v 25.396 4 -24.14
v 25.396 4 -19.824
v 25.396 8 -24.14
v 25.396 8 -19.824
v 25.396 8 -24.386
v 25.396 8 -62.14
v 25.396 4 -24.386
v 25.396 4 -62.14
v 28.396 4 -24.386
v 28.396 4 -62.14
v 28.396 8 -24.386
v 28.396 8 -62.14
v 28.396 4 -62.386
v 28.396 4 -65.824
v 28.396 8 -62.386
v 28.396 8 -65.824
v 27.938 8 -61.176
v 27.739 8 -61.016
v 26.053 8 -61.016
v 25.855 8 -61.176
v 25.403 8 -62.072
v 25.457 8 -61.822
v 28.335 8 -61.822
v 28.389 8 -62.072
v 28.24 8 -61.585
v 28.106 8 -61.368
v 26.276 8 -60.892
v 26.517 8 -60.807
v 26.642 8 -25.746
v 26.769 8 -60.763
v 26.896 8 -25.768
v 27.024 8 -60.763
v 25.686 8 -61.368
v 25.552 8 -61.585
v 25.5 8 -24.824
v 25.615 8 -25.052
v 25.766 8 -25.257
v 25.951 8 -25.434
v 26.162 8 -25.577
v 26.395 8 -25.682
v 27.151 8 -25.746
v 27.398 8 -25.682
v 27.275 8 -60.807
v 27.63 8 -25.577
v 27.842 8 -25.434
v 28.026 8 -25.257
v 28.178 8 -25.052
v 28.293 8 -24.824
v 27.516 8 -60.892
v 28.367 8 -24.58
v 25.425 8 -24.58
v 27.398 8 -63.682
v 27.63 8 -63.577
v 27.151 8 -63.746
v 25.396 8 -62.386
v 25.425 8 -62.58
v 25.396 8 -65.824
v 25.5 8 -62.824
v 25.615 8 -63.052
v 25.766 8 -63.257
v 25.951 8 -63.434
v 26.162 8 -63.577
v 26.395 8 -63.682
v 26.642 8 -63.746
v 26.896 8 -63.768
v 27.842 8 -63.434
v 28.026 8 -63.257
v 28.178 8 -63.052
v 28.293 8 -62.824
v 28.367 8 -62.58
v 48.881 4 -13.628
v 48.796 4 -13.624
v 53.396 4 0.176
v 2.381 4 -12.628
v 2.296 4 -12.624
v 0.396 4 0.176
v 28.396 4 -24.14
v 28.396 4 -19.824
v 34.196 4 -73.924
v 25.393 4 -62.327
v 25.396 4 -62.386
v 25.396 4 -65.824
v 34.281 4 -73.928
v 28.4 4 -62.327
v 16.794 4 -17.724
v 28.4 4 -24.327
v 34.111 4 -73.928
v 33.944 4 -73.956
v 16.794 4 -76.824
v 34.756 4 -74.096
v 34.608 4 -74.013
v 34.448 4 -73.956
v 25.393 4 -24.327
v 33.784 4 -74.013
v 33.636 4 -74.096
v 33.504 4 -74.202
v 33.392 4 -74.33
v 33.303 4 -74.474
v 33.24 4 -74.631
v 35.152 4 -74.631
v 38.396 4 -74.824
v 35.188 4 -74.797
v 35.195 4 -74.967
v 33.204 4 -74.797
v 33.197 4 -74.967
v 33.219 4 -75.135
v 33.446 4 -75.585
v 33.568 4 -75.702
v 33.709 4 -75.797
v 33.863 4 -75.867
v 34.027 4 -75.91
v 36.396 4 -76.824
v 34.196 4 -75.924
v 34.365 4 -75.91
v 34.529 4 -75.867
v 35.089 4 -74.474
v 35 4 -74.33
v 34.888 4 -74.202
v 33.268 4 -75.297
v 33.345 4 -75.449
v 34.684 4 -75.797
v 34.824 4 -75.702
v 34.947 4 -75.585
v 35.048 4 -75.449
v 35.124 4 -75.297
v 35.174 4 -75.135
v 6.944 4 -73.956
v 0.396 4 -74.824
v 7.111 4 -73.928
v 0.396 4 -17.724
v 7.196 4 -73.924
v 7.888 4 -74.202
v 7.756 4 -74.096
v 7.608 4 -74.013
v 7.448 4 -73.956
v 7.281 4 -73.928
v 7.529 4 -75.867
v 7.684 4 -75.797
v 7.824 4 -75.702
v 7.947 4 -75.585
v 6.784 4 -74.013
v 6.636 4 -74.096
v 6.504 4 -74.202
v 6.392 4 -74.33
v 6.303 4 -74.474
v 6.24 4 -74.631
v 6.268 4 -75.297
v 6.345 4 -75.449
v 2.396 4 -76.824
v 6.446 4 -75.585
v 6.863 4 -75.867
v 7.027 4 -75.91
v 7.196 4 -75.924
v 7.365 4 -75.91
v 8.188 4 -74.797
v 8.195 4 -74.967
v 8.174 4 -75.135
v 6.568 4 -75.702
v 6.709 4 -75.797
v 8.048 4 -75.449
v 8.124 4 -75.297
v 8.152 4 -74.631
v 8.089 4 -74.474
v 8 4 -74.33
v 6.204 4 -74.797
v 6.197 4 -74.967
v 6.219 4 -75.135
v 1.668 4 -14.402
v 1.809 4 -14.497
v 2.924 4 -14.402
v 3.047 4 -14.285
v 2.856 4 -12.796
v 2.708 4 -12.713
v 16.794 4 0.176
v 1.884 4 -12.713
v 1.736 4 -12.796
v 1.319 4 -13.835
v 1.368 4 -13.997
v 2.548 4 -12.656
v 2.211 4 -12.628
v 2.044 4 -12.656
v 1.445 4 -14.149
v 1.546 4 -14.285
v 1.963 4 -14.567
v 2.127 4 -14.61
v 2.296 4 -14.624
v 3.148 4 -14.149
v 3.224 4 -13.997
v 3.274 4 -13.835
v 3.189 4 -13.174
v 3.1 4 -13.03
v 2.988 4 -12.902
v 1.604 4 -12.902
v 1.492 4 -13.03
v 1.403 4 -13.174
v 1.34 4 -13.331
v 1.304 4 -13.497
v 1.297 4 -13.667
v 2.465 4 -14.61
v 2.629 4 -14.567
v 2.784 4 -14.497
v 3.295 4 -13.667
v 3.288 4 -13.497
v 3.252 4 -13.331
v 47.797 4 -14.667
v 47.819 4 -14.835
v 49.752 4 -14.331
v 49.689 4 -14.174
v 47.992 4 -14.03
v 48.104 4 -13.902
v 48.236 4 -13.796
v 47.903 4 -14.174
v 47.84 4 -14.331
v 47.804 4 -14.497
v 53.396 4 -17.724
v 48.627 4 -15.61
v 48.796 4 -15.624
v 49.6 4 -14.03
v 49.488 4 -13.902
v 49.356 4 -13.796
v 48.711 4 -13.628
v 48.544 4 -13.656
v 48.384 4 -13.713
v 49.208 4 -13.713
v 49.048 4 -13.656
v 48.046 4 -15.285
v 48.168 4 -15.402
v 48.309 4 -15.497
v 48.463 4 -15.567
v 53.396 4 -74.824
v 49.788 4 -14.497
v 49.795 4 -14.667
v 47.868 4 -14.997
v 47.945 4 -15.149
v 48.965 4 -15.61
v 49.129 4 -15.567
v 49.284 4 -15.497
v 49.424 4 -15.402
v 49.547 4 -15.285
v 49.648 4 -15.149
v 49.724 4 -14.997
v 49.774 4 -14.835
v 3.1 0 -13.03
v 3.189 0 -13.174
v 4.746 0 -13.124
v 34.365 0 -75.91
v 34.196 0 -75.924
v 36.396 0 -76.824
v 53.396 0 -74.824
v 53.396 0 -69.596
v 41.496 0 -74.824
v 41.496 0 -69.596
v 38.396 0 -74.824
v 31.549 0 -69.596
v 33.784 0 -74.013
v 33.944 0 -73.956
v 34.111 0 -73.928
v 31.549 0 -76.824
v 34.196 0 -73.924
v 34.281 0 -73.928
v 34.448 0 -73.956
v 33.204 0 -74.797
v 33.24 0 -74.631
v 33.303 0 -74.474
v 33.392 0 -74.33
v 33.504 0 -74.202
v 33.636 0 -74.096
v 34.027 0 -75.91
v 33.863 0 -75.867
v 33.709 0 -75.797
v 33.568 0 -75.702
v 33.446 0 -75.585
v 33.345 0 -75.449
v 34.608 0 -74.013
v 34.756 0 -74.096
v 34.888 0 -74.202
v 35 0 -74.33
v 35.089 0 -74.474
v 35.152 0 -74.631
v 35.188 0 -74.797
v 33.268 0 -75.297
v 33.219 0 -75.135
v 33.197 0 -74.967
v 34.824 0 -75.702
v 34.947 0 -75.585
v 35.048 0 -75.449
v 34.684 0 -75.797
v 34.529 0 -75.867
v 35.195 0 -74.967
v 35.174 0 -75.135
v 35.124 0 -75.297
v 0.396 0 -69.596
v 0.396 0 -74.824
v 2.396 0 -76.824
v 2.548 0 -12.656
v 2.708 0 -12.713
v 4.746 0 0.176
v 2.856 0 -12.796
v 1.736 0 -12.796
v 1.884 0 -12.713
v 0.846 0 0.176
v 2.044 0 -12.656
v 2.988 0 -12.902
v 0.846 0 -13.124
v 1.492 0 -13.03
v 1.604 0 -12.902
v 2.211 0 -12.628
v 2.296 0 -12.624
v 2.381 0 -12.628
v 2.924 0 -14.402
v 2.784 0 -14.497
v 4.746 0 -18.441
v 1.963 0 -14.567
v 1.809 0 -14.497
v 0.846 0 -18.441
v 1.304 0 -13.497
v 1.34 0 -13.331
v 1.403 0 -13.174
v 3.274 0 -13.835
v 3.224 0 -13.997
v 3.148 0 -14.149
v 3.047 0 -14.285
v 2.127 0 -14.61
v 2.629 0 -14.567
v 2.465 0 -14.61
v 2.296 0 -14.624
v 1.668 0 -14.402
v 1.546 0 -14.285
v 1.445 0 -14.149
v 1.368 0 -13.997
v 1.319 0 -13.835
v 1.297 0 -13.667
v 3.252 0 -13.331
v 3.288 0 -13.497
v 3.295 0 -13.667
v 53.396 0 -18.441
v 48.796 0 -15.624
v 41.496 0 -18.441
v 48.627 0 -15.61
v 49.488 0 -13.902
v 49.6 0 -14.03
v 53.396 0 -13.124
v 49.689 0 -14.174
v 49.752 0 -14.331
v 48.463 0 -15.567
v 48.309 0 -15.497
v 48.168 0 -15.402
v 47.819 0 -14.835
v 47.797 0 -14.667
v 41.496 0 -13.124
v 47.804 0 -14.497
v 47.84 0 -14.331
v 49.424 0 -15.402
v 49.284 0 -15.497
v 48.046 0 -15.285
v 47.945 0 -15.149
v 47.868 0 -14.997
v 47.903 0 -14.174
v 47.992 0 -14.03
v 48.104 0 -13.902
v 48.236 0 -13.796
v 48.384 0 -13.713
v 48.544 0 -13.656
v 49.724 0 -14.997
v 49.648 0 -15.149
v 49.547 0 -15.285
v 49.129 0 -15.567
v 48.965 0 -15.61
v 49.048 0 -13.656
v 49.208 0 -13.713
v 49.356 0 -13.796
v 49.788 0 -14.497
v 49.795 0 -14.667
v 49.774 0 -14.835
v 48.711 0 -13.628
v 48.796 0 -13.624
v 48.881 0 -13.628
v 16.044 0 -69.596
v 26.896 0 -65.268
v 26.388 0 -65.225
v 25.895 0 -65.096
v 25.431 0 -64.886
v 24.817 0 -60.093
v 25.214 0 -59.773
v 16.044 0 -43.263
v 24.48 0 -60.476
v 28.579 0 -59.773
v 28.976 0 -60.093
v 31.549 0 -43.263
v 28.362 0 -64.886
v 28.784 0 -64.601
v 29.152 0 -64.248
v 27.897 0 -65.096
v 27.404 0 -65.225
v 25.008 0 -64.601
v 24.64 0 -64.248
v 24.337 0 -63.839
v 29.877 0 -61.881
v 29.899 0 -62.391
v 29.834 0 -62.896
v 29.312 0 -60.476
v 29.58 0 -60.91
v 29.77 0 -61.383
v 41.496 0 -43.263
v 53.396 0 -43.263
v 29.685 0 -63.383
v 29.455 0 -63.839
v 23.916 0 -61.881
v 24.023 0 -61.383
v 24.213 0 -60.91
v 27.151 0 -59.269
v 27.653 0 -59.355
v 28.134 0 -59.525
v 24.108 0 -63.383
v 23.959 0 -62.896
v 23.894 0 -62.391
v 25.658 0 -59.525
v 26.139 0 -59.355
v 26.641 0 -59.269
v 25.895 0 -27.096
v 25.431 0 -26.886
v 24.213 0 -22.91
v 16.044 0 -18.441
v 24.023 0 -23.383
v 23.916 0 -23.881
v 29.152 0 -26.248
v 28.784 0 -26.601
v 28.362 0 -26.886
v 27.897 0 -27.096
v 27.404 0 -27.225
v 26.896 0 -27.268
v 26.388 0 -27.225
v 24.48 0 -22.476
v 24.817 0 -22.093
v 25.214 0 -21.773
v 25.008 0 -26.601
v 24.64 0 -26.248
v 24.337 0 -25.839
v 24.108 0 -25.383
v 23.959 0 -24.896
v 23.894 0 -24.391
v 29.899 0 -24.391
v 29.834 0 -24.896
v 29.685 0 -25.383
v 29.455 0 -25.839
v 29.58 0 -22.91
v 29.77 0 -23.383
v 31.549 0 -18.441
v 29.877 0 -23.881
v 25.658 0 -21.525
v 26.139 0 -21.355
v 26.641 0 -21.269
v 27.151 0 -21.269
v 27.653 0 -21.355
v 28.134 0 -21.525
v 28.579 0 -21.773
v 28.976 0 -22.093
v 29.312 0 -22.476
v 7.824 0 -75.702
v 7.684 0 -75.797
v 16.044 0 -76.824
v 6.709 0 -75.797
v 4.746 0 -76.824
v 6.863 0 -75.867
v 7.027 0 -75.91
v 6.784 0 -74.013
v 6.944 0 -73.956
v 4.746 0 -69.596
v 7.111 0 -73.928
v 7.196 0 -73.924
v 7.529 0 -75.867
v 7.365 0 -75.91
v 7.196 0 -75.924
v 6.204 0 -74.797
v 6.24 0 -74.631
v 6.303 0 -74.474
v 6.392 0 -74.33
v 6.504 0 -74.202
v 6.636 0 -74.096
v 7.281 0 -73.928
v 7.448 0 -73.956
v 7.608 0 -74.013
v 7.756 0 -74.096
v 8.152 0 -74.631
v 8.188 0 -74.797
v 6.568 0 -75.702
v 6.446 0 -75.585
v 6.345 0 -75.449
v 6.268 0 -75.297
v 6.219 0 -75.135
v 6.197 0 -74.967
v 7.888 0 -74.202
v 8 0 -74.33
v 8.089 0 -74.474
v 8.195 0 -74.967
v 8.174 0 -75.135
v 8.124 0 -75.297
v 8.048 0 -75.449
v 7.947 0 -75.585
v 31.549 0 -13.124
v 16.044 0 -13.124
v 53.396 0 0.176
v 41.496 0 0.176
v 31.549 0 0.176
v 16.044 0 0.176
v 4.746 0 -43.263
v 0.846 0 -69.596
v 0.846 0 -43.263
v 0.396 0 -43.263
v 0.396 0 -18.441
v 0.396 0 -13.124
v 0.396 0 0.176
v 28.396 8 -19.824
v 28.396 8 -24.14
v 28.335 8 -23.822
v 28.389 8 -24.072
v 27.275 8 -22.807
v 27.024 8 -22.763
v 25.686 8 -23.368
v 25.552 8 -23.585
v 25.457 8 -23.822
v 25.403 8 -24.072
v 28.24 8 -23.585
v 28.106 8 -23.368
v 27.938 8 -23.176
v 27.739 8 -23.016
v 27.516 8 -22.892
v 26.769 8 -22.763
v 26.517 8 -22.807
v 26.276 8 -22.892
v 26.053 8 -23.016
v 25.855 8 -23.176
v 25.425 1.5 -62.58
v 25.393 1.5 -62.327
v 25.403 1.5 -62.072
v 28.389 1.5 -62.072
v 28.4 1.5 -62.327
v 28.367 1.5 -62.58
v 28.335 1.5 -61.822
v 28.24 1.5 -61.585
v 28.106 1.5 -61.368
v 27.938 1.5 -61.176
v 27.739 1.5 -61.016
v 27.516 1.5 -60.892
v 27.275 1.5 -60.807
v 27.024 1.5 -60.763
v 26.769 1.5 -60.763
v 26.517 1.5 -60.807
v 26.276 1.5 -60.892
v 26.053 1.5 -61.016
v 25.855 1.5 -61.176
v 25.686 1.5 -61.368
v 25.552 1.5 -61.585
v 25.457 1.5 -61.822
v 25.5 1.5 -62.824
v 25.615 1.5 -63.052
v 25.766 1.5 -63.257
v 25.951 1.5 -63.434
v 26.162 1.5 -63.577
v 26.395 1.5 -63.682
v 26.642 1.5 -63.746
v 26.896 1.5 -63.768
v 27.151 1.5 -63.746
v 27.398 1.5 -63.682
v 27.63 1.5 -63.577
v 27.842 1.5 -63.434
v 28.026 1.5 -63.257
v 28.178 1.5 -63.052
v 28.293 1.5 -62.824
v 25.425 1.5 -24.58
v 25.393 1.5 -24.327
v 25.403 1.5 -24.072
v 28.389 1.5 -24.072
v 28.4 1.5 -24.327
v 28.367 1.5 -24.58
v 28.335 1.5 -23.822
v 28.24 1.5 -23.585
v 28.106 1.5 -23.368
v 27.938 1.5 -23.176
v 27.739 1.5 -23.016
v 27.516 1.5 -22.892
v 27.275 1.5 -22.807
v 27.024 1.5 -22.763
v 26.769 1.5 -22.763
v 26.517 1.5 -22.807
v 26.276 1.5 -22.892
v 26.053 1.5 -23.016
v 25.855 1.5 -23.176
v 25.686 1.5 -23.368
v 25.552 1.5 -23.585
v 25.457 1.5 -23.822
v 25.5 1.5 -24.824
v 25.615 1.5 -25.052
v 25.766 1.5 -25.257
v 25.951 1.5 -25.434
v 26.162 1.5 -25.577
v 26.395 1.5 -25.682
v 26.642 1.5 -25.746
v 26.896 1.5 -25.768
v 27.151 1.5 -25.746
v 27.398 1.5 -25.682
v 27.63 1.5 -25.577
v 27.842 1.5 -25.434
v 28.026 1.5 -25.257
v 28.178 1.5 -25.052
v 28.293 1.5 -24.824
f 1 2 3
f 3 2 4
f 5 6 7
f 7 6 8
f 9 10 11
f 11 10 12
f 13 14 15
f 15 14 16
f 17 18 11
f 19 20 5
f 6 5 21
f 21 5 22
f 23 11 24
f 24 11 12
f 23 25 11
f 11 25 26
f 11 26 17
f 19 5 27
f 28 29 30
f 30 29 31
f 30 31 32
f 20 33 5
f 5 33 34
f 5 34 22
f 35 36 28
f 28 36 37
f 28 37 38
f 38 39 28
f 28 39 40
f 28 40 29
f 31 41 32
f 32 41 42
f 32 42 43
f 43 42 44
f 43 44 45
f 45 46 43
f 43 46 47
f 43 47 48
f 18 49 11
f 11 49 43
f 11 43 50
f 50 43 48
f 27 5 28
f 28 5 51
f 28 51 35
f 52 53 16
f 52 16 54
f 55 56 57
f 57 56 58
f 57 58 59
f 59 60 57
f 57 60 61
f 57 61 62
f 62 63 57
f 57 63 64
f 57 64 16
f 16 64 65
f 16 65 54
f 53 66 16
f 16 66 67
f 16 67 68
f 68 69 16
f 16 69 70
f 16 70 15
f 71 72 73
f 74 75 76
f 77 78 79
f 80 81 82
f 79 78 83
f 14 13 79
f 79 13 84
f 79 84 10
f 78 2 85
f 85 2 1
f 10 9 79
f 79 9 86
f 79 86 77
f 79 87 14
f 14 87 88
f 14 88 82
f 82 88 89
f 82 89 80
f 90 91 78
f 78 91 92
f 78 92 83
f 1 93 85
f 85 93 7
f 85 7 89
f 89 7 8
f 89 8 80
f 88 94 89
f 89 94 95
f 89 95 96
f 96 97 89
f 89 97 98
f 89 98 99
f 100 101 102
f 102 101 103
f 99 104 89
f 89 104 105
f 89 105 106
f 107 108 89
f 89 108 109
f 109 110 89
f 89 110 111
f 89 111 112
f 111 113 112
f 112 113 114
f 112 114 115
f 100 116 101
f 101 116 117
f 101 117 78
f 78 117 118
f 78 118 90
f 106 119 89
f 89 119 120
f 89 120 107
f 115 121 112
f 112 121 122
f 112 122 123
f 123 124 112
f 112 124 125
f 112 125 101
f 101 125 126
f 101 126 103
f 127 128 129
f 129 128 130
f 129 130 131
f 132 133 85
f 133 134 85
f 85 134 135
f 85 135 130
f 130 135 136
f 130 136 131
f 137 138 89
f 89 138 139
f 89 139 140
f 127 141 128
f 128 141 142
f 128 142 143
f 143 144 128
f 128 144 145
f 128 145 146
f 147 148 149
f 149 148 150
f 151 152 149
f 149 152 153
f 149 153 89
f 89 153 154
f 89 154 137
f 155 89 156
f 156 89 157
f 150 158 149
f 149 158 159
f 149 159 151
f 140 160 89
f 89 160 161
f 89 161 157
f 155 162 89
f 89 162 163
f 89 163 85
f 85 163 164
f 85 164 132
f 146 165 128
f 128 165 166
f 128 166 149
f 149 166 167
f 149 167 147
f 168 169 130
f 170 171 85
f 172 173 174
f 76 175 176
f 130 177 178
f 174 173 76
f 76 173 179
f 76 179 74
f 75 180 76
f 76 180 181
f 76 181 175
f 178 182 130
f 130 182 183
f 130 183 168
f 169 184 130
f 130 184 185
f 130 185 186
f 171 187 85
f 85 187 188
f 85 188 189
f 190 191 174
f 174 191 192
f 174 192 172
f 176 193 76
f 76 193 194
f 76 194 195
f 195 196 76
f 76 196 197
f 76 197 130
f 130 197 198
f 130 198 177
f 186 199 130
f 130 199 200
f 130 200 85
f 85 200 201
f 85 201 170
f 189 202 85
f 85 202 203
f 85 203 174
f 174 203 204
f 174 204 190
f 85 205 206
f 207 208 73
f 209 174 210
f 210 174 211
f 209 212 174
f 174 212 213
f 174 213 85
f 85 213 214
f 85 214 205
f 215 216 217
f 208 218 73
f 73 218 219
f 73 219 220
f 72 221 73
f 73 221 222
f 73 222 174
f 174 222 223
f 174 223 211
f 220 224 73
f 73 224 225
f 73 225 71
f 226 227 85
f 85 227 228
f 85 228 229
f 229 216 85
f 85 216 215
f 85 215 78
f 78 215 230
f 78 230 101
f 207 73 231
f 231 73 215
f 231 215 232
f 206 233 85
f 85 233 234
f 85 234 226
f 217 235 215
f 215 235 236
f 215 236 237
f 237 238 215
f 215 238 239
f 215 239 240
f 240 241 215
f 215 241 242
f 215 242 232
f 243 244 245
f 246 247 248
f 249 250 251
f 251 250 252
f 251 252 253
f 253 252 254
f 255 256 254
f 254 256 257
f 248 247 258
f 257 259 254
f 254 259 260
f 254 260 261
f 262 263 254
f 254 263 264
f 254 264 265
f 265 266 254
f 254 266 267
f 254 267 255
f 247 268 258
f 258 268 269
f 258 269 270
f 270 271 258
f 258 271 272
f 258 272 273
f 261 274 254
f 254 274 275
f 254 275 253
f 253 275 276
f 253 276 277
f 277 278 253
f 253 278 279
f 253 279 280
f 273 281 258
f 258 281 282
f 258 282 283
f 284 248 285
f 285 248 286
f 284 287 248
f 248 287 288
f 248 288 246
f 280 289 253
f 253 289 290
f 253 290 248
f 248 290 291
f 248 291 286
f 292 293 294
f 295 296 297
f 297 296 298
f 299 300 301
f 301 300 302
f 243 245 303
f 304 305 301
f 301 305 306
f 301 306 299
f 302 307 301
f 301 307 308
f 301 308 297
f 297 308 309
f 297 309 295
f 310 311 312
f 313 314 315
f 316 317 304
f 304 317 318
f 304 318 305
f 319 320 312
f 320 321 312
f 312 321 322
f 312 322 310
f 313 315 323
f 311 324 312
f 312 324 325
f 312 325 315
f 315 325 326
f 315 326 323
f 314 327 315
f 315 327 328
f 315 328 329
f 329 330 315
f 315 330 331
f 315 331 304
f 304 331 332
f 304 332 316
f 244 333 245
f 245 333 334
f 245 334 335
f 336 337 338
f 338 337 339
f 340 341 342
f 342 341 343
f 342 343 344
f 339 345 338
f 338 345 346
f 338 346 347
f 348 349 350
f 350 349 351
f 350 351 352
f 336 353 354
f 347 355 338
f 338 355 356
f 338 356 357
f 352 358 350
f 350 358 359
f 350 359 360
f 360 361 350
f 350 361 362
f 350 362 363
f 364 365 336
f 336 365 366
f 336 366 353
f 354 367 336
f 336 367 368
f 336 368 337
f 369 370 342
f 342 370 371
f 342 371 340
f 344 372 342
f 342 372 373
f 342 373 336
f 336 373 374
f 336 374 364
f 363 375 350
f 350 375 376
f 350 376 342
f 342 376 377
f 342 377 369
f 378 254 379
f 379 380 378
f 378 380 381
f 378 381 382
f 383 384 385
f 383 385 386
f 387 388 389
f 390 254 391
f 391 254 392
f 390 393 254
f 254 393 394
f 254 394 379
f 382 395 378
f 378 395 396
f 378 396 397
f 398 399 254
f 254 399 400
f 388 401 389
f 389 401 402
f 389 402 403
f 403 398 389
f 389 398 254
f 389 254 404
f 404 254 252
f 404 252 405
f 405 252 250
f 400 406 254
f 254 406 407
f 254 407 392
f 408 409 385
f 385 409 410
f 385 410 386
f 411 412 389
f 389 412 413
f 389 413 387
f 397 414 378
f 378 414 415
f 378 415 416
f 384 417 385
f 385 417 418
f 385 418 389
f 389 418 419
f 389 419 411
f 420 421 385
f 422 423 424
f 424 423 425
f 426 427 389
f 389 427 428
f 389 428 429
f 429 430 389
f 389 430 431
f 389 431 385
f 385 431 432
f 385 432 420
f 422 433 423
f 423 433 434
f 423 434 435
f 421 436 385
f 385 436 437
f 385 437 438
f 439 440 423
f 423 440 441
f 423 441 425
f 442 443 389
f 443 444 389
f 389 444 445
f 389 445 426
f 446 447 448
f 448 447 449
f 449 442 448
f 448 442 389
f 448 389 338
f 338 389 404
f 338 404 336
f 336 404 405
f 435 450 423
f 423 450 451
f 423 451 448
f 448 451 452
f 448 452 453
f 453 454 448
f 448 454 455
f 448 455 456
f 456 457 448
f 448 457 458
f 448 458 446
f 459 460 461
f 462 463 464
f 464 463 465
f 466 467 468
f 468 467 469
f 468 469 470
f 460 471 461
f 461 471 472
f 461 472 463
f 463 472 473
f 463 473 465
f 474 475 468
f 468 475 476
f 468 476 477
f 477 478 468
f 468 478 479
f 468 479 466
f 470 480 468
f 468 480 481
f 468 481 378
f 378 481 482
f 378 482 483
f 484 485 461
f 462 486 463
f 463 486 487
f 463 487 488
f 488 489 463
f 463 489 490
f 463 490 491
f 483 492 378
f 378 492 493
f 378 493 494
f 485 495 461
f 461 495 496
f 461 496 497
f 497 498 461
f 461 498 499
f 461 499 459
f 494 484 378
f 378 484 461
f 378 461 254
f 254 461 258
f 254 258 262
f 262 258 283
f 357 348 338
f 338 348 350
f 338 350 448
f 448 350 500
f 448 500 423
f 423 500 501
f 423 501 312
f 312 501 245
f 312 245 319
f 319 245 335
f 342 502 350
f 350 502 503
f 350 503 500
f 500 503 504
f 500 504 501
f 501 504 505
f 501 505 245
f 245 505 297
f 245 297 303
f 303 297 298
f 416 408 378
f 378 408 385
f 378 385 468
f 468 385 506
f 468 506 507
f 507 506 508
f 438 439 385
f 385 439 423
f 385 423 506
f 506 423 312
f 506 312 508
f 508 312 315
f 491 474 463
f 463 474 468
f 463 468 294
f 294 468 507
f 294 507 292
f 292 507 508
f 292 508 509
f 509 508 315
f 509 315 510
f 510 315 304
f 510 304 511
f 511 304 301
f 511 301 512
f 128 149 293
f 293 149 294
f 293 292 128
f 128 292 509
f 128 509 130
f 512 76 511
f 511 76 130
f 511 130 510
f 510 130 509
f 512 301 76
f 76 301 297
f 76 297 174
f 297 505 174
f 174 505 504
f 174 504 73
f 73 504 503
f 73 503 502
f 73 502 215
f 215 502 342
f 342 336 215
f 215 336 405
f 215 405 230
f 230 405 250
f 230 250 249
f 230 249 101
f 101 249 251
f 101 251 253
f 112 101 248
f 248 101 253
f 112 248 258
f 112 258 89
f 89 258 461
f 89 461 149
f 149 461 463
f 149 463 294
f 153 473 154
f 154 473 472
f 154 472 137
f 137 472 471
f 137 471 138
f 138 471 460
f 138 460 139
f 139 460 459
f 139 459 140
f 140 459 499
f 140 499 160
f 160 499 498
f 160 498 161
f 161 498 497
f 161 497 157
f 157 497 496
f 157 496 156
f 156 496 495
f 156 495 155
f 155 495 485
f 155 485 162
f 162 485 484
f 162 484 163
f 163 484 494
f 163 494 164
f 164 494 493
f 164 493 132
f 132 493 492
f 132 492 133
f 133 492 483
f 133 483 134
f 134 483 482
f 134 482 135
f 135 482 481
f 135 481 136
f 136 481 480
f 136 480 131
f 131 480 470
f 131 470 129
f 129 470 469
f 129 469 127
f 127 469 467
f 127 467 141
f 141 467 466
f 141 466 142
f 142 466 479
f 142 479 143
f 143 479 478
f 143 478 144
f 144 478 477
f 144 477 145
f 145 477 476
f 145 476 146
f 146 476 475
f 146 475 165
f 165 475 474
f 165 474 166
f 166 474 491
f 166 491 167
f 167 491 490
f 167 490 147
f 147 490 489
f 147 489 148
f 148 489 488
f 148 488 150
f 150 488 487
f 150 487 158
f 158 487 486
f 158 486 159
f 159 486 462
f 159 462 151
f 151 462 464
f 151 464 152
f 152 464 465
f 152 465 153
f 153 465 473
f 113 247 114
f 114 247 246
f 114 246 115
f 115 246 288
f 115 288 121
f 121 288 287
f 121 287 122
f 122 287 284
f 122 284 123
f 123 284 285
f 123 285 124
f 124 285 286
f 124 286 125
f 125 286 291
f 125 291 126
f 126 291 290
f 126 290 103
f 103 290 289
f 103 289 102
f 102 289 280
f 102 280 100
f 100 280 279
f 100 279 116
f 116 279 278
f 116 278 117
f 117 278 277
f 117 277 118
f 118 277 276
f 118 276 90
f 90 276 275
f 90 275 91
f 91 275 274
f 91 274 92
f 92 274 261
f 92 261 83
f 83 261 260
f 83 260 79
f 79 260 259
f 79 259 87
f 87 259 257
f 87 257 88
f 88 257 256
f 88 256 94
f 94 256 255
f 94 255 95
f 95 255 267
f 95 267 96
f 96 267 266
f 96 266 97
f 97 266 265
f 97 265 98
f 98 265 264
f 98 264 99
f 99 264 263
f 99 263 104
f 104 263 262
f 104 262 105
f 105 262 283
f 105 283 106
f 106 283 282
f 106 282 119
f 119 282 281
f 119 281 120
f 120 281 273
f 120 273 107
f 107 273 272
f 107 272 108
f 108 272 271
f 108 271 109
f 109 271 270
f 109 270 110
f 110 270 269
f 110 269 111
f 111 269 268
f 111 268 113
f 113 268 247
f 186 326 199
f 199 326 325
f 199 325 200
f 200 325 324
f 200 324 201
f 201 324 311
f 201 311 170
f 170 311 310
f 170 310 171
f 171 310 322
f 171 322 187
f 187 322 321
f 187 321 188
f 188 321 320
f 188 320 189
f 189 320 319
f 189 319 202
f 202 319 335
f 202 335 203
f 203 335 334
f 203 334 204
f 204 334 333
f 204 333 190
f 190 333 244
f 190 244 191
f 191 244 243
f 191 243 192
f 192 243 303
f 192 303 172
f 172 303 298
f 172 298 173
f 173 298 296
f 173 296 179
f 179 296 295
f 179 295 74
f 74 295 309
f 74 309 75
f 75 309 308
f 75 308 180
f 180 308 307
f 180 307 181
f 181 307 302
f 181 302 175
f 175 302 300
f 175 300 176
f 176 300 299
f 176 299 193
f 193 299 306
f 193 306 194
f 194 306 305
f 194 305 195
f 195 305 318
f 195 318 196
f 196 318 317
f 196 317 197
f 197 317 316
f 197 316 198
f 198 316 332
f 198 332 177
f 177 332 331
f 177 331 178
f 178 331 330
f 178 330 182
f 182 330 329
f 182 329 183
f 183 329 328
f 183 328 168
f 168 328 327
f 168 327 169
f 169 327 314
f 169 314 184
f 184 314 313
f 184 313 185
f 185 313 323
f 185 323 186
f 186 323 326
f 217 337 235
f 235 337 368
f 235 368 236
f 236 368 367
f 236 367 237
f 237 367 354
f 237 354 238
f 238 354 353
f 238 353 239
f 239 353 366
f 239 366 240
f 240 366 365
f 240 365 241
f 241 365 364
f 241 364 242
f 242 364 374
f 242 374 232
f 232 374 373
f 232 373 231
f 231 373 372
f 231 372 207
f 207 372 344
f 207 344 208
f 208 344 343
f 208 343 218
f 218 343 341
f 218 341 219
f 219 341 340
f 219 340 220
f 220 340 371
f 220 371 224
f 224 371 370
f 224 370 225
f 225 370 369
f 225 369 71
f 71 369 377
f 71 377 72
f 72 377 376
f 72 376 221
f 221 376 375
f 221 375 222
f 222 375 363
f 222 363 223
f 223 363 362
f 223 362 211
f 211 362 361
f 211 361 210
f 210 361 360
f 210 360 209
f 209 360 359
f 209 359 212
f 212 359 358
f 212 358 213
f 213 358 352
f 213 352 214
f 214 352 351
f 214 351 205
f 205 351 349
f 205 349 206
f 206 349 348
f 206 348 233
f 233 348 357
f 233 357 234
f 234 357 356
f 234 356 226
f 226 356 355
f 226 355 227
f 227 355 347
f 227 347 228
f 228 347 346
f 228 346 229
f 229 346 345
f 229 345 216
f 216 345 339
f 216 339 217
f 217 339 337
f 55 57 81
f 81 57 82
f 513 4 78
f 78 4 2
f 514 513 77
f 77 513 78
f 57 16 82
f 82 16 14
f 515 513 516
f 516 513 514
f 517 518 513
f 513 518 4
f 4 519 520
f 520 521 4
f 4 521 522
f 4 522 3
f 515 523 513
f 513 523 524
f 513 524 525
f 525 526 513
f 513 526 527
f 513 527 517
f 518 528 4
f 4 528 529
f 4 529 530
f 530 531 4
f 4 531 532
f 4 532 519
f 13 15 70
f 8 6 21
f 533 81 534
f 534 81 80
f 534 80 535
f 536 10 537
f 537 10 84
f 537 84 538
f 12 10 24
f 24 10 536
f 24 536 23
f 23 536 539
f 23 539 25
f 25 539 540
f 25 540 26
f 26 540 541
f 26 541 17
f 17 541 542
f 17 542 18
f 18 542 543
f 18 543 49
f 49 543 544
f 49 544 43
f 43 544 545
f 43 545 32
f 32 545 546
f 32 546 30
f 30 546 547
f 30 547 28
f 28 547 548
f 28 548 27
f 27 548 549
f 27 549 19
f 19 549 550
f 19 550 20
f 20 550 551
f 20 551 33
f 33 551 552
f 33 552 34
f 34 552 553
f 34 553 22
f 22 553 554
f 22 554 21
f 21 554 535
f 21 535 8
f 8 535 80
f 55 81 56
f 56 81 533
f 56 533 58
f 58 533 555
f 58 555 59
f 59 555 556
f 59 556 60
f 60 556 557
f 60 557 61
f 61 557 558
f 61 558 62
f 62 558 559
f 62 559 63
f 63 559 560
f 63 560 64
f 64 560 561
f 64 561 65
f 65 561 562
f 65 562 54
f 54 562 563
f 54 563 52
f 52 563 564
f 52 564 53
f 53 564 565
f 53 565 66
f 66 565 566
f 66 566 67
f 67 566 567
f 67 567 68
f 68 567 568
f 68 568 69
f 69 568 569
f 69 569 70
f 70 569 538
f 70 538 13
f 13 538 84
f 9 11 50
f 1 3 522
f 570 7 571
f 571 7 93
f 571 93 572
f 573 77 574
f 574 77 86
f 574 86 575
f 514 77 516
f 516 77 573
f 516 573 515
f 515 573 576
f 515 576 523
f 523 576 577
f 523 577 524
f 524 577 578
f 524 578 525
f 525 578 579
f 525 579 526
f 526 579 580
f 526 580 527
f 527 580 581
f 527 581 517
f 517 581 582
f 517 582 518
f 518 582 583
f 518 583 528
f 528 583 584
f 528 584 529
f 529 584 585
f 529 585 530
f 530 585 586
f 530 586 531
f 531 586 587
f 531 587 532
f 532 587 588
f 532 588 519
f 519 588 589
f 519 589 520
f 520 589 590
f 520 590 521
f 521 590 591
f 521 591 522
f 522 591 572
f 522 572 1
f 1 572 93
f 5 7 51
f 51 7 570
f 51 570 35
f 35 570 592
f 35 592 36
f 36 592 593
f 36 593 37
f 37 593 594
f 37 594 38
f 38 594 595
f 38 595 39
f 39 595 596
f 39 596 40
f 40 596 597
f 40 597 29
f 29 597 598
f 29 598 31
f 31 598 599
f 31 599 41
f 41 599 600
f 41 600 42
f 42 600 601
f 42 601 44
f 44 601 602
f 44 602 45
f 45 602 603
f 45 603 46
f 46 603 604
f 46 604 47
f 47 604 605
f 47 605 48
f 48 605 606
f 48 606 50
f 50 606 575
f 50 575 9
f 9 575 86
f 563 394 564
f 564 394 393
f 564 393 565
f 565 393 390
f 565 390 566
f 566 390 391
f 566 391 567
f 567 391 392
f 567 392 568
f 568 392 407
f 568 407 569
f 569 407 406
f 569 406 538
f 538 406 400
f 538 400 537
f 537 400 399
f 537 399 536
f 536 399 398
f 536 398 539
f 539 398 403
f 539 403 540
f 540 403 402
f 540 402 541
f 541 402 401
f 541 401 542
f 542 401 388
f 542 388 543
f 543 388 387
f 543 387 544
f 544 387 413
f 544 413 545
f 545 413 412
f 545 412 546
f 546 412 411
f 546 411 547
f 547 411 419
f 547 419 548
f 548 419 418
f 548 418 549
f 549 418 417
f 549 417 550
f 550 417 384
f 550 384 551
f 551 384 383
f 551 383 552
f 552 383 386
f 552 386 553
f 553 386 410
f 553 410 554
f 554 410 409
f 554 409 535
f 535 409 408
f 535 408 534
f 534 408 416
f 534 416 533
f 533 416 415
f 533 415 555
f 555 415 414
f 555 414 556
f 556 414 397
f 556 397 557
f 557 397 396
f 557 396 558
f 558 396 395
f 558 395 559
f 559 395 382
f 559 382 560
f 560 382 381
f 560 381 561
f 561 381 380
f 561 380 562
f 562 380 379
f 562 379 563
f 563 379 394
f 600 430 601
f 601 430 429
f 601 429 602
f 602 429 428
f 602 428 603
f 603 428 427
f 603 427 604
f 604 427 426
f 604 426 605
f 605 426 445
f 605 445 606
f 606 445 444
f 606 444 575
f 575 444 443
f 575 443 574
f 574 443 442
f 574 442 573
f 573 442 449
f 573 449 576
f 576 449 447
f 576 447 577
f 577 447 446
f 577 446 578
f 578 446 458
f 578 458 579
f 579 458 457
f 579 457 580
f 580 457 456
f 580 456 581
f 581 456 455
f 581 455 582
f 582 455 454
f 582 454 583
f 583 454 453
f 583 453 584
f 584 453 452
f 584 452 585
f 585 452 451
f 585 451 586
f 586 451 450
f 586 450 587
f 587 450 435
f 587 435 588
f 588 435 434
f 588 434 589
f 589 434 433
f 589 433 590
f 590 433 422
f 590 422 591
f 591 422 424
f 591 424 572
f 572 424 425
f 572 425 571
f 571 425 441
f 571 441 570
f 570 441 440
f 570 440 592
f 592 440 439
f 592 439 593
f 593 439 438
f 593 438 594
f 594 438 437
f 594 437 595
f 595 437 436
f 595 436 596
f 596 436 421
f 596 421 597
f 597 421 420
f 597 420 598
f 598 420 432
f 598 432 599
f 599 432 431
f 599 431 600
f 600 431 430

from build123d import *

# Parameters (mm, degrees)
SKETCH_1_R          = 1
EXTRUDE_2_DEPTH     = 4
SKETCH_3_W          = 3
SKETCH_3_H          = 46
EXTRUDE_3_DEPTH     = 4
SKETCH_4_R          = 1.505
CUT_EXTRUDE_7_DEPTH = 8
CHAMFER_1_SIZE      = 1.5
CHAMFER_2_SIZE      = 1.5


with BuildPart() as part:
    # Эскиз1 → Бобышка-Вытянуть2 (new body)
    with BuildSketch(Plane(origin=(0, 0, 0), x_dir=(1, 0, 0), z_dir=(0, 1, 0))):
        Polygon((2.396260851, 76.824196235), (36.396260851, 76.824196235), (38.396260851, 74.824196235), (53.396260851, 74.824196235), (53.396260851, -0.175803765), (0.396260851, -0.175803765), (0.396260851, 74.824196235), align=None)
        with Locations(Location((7.196260851, 74.924196235, 0), (0, 0, 270))):
            Circle(SKETCH_1_R, mode=Mode.SUBTRACT)
        with Locations(Location((34.196260851, 74.924196235, 0), (0, 0, 270))):
            Circle(SKETCH_1_R, mode=Mode.SUBTRACT)
        with Locations(Location((2.296260851, 13.624196235, 0), (0, 0, 270))):
            Circle(SKETCH_1_R, mode=Mode.SUBTRACT)
        with Locations(Location((48.796260851, 14.624196235, 0), (0, 0, 270))):
            Circle(SKETCH_1_R, mode=Mode.SUBTRACT)
    extrude(amount=EXTRUDE_2_DEPTH)

    # Эскиз3 → Бобышка-Вытянуть3 (add)
    with BuildSketch(Plane(origin=(0, 4, 0), x_dir=(1, 0, 0), z_dir=(0, 1, 0))):
        with Locations((26.896260851, 42.824196235)):
            Rectangle(SKETCH_3_W, SKETCH_3_H)
    extrude(amount=EXTRUDE_3_DEPTH)

    # Эскиз4 → Вырез-Вытянуть7 (cut)
    with BuildSketch(Plane.XZ):
        with Locations(Location((26.896260851, -24.262976388, 0), (0, 0, 270))):
            Circle(SKETCH_4_R)
        with Locations(Location((26.896260851, -62.262976388, 0), (0, 0, 270))):
            Circle(SKETCH_4_R)
    extrude(amount=-CUT_EXTRUDE_7_DEPTH, mode=Mode.SUBTRACT)

    # Фаска1
    chamfer_1_edges = [part.edges().sort_by_distance(p)[0] for p in [
        (26.896260851, 0, -60.757976388),
    ]]
    chamfer(chamfer_1_edges, length=CHAMFER_1_SIZE)

    # Фаска2
    chamfer_2_edges = [part.edges().sort_by_distance(p)[0] for p in [
        (26.896260851, 0, -22.757976388),
    ]]
    chamfer(chamfer_2_edges, length=CHAMFER_2_SIZE)


solid = part.part
